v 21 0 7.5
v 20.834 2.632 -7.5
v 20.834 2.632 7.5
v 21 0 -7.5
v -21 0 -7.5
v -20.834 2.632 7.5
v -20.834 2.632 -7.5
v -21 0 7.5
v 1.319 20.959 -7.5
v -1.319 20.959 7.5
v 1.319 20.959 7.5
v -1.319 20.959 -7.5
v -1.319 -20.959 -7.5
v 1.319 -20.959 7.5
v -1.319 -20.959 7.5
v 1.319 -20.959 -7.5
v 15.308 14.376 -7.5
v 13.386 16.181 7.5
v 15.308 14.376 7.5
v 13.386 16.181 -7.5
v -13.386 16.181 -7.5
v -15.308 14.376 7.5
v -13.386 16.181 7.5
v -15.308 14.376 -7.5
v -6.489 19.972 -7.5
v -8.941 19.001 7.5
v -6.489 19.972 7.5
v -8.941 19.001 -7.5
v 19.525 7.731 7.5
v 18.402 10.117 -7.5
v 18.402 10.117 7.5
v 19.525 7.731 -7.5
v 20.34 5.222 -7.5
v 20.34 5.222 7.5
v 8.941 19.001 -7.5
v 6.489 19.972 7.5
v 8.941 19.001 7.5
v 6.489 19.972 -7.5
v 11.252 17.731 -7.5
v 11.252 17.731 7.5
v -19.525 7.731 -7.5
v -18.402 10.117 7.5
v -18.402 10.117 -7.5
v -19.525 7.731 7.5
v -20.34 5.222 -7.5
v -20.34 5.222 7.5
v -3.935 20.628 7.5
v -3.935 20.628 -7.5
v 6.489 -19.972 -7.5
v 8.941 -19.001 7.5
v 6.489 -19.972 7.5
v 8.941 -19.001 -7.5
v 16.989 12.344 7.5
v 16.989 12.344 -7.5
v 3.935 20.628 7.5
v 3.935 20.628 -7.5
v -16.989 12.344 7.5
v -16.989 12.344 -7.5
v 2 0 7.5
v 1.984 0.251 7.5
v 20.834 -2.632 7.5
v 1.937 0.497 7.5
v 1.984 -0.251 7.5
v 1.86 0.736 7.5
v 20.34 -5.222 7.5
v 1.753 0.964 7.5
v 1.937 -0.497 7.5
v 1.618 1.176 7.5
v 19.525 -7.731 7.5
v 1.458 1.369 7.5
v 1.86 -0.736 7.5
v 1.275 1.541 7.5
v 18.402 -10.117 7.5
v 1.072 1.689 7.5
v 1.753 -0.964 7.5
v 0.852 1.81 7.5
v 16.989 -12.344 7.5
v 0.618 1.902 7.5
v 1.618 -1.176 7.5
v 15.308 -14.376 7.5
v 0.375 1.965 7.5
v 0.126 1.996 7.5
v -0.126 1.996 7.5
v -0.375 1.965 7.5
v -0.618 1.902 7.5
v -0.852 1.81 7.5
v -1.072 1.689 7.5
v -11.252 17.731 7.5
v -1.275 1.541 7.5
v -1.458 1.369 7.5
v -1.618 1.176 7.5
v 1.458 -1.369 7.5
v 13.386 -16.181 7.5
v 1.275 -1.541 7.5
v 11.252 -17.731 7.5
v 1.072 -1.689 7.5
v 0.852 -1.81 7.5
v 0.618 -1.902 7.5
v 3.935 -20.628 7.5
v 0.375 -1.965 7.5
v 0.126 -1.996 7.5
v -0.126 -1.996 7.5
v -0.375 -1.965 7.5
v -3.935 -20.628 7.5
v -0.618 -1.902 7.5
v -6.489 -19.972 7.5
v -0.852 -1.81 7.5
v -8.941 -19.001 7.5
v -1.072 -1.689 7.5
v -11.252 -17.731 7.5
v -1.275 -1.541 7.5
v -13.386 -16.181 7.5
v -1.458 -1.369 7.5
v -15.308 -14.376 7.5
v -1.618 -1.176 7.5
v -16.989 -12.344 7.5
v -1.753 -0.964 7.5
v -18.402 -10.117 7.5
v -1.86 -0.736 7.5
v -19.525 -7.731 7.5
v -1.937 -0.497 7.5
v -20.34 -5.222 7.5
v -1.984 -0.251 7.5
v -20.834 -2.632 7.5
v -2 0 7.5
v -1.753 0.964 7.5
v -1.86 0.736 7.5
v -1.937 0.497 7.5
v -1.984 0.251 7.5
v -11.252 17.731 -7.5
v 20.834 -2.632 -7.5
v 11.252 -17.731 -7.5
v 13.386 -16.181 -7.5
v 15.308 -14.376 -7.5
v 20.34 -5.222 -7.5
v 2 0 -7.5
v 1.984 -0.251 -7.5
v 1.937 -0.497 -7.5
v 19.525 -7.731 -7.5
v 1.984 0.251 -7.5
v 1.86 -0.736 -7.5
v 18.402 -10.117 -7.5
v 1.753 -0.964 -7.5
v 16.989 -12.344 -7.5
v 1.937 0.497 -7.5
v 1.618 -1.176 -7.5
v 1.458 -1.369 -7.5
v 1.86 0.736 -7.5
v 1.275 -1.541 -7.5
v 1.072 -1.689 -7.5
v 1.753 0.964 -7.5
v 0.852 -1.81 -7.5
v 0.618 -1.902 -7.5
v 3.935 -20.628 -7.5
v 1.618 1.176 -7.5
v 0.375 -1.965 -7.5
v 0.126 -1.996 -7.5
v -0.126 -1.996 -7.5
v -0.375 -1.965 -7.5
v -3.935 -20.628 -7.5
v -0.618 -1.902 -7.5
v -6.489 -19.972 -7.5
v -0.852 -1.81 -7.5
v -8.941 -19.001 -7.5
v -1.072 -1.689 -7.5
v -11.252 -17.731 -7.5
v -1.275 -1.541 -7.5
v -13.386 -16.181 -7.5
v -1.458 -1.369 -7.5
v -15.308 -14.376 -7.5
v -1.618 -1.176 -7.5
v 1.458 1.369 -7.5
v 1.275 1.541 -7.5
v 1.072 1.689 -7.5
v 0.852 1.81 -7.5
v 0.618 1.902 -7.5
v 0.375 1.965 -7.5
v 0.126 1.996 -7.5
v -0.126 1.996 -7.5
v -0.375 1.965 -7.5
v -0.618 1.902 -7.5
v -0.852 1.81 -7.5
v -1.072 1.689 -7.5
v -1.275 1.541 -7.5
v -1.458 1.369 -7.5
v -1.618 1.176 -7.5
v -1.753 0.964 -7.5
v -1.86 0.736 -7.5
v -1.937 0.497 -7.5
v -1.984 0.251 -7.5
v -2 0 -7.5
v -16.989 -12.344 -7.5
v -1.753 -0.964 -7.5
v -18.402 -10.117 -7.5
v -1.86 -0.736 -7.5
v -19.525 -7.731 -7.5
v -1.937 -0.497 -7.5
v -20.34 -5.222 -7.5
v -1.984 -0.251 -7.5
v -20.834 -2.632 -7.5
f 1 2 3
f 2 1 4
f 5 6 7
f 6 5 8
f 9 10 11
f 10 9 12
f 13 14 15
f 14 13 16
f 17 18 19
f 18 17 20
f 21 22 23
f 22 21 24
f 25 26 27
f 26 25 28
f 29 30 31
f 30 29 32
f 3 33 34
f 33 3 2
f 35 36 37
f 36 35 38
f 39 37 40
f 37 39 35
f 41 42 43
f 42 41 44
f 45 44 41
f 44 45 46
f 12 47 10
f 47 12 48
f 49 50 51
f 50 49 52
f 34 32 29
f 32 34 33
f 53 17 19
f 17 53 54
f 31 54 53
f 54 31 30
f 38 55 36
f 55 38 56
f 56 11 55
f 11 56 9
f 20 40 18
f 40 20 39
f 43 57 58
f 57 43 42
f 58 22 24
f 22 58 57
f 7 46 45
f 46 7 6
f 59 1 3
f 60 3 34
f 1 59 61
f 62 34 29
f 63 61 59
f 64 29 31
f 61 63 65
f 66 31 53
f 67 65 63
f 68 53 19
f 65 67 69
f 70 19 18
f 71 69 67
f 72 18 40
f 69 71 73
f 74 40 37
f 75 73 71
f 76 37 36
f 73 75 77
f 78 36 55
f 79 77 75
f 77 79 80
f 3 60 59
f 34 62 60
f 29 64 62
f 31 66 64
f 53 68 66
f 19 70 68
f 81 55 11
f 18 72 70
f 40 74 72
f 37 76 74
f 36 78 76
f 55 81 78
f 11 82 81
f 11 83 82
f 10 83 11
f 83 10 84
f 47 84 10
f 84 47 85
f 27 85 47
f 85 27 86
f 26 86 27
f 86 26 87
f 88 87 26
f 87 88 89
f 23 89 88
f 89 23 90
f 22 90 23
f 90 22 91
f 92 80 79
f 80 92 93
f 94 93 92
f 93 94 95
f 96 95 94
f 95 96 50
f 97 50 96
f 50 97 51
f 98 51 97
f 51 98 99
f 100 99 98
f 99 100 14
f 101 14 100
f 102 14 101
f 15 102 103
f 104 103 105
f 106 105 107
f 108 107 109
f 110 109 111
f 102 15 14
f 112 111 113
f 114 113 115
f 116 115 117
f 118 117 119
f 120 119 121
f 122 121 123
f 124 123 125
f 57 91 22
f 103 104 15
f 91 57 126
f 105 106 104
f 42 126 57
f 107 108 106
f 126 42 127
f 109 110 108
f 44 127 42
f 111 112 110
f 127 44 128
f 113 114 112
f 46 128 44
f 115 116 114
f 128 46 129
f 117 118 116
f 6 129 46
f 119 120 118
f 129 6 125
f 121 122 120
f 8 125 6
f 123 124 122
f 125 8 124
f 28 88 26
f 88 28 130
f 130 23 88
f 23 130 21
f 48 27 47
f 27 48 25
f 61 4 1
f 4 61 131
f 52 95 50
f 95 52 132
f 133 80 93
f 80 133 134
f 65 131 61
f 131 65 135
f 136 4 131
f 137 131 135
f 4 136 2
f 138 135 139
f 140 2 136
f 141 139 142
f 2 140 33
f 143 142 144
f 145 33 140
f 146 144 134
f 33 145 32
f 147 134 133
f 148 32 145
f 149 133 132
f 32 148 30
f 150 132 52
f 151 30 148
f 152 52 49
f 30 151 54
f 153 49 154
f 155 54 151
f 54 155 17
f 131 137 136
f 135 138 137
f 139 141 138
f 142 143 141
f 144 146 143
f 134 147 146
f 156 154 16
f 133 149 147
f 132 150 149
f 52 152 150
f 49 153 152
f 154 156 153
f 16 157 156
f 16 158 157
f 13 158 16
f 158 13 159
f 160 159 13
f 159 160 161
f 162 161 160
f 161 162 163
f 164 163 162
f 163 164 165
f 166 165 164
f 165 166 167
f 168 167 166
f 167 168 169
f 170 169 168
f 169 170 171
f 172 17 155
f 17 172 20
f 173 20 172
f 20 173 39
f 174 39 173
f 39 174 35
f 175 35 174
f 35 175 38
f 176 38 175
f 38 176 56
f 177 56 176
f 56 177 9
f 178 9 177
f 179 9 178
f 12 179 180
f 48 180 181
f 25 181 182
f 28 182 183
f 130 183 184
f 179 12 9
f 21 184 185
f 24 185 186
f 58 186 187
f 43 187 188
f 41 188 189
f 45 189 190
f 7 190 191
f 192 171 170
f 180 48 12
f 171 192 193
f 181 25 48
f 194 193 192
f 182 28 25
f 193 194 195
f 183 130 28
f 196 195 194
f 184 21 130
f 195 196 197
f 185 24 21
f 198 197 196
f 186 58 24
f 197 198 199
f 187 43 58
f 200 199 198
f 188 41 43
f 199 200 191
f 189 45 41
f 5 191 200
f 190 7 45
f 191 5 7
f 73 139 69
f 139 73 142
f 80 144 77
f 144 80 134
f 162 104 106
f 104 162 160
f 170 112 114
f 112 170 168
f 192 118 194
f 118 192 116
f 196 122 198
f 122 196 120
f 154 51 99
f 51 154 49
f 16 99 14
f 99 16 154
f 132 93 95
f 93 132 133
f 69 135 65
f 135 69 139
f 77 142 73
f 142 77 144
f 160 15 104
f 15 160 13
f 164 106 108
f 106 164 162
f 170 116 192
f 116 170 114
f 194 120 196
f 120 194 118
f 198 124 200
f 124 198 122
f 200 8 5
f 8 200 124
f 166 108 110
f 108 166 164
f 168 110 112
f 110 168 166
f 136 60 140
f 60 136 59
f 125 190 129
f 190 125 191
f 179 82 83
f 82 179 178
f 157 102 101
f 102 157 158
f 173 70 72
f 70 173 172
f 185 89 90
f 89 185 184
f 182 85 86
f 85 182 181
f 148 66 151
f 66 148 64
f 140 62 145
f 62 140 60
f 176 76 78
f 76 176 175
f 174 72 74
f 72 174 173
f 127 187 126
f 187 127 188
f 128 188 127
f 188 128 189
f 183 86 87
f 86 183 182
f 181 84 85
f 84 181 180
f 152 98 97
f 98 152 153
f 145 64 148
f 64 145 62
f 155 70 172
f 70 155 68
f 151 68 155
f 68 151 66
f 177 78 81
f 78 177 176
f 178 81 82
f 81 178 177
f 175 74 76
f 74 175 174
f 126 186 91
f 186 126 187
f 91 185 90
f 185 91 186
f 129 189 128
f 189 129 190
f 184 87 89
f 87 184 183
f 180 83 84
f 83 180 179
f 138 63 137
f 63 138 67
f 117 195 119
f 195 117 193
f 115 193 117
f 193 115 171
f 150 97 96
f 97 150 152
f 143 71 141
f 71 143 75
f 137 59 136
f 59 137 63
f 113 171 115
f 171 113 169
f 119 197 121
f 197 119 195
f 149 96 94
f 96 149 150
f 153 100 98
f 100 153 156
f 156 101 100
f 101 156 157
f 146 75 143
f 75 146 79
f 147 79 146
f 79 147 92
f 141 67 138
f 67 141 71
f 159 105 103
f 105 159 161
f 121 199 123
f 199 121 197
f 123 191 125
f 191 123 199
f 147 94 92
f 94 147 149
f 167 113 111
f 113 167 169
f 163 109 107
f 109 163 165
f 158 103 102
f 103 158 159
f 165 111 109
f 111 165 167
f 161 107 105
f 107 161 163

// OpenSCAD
$fn = 50;


difference() {
	union() {
		translate(v = [0, 0, -7.5000000000]) {
			cylinder(h = 15, r = 21.0000000000);
		}
	}
	union() {
		translate(v = [0, 0, -100.0000000000]) {
			cylinder(h = 200, r = 2);
		}
	}
}
